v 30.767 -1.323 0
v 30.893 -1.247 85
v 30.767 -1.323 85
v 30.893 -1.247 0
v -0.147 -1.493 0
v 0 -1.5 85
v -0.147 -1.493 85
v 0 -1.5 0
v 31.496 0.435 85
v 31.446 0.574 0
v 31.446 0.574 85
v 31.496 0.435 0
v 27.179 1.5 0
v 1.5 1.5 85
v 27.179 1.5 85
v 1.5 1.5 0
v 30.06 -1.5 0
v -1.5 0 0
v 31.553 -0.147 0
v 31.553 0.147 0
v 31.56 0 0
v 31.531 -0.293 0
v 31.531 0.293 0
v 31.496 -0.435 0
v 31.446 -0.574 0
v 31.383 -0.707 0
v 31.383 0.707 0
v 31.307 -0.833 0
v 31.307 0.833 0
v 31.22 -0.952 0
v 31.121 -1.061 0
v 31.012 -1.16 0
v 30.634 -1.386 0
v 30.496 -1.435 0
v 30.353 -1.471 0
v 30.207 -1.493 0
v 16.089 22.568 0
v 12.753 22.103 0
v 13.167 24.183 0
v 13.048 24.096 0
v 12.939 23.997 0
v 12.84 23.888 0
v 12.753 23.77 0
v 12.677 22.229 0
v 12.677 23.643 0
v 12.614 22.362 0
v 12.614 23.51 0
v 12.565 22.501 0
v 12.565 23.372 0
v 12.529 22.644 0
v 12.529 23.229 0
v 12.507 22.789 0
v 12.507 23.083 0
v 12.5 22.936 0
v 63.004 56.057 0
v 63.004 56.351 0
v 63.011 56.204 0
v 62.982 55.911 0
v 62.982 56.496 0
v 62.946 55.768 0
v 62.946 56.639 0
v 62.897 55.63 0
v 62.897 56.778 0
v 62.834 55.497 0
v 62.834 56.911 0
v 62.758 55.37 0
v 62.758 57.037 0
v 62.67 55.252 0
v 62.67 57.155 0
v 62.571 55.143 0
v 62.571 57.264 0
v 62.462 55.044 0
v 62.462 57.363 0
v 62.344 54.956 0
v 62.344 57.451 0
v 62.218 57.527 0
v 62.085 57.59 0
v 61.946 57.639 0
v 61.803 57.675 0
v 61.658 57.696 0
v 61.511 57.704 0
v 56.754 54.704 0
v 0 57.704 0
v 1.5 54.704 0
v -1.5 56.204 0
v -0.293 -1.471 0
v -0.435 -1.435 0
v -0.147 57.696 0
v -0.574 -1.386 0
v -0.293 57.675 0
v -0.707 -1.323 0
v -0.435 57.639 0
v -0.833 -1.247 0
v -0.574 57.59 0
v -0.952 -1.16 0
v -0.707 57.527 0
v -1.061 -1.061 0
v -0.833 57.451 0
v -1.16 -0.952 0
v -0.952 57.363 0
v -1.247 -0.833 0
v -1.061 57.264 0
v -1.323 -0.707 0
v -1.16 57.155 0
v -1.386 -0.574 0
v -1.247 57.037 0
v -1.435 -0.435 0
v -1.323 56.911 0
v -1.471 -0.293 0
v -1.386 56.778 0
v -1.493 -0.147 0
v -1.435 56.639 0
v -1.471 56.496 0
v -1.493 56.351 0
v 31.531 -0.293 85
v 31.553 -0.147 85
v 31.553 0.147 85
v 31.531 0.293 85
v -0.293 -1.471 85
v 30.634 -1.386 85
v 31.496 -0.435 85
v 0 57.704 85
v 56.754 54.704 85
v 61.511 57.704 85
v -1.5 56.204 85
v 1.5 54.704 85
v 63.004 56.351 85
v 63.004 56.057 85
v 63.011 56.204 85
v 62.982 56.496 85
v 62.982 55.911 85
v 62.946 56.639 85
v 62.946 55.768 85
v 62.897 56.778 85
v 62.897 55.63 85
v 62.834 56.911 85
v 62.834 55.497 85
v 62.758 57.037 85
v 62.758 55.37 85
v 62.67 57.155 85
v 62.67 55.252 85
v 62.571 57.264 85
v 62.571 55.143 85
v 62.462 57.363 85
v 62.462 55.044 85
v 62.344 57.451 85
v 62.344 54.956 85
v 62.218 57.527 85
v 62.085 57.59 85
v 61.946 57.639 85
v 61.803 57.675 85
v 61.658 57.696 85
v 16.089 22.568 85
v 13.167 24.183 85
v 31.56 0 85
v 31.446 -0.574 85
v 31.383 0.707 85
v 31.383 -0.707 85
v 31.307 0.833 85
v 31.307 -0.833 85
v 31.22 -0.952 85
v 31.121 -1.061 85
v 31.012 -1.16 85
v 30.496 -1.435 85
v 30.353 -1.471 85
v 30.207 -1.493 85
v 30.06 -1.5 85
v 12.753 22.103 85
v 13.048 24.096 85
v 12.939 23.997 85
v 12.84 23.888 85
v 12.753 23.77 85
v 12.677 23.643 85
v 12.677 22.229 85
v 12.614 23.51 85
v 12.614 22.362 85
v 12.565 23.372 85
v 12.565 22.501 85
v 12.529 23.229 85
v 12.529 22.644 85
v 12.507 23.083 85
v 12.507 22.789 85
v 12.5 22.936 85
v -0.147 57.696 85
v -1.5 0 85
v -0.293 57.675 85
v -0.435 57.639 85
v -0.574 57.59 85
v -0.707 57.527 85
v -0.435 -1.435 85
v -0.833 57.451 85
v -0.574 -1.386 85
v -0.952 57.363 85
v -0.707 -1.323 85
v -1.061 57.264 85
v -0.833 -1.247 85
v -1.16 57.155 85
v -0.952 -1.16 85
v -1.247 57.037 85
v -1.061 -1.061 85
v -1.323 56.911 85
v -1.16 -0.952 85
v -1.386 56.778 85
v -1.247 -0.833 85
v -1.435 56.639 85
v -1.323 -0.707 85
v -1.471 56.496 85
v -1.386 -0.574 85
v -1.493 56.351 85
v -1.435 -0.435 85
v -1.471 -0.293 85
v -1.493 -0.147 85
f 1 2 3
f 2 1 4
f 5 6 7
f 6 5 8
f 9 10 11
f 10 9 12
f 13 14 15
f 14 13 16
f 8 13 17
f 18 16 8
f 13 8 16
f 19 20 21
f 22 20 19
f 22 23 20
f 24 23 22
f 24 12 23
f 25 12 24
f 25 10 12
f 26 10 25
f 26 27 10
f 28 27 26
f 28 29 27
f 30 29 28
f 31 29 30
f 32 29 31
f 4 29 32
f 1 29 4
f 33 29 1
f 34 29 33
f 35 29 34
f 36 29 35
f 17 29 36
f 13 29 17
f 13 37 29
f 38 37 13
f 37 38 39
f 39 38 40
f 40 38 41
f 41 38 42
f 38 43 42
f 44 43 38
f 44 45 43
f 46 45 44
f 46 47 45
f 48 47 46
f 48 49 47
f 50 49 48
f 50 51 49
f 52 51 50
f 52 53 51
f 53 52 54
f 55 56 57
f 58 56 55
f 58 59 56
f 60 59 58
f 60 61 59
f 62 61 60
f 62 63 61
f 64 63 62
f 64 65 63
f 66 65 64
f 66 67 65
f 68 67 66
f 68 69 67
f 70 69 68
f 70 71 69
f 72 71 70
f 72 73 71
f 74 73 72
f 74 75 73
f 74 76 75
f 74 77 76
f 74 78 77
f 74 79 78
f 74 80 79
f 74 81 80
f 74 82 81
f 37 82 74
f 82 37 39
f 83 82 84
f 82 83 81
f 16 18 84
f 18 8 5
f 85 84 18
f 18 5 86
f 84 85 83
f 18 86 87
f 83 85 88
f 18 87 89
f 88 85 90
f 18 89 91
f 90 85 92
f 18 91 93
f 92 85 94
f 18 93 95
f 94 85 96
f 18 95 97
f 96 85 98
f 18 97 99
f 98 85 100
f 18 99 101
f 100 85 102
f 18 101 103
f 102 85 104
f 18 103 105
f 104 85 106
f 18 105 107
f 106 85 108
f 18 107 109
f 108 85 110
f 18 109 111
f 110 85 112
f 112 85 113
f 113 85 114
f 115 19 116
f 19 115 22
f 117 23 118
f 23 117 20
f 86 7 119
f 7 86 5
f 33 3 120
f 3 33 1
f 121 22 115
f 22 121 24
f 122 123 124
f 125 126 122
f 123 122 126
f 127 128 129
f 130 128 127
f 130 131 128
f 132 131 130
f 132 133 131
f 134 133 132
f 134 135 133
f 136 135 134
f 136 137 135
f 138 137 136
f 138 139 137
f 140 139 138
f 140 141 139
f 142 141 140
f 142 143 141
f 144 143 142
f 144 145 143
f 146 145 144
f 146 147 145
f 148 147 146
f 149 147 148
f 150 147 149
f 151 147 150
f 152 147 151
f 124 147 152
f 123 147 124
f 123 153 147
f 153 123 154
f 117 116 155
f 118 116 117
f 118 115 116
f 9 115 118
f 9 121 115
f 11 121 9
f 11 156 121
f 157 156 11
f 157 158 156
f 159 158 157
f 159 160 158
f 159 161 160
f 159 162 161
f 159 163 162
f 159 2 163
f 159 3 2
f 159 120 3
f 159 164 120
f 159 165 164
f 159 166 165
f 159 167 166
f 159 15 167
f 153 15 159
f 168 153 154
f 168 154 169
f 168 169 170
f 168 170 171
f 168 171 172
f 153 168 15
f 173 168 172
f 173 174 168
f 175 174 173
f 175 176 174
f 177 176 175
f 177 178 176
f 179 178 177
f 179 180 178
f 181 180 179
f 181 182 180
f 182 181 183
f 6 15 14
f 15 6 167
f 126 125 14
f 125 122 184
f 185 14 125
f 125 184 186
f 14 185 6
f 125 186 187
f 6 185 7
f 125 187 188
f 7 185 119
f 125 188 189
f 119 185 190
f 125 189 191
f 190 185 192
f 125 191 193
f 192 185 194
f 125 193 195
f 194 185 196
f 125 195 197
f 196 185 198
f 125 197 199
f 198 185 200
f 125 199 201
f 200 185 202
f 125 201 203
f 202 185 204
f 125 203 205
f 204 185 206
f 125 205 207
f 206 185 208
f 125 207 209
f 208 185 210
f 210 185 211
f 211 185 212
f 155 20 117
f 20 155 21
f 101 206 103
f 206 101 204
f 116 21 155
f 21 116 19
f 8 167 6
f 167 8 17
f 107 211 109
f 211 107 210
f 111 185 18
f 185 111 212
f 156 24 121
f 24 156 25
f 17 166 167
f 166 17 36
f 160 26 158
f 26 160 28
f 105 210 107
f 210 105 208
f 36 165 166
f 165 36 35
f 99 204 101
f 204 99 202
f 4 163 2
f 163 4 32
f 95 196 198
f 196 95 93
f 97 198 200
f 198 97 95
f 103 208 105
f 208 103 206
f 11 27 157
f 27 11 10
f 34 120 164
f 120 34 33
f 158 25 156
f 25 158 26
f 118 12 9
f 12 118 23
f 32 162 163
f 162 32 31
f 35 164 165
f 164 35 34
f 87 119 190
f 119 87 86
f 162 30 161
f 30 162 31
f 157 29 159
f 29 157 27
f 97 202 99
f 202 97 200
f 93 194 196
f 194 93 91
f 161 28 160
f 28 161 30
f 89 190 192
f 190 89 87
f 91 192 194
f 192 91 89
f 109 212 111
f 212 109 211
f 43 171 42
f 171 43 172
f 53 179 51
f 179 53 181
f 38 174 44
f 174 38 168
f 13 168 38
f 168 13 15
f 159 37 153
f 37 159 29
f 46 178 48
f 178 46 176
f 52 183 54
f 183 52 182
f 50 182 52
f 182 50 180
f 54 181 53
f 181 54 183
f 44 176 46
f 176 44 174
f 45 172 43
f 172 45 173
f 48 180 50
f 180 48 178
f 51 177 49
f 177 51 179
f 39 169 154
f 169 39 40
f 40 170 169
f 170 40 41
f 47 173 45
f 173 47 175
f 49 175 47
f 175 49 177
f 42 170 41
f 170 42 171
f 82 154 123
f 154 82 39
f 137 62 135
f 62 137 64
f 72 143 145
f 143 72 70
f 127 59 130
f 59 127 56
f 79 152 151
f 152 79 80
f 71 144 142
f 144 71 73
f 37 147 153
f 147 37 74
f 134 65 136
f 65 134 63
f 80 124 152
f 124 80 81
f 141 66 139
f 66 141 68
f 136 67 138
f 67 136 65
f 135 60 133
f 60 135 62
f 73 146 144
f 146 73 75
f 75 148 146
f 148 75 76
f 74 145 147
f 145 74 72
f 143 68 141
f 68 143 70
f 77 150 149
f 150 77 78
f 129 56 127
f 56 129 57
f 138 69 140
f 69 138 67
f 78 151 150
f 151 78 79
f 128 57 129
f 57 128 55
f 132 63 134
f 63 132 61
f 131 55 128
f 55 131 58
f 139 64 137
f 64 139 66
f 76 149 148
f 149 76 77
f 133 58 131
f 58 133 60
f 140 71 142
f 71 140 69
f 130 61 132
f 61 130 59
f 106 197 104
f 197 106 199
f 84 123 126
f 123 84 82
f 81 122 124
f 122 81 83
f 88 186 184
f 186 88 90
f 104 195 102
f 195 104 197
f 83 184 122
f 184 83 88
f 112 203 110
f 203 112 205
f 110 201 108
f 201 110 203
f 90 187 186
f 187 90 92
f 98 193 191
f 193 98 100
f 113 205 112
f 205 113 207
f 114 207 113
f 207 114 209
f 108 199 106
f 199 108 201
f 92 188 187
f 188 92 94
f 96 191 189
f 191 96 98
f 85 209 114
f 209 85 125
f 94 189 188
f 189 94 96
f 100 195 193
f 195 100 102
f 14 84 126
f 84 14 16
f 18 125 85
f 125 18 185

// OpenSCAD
// Shelf width
shelf_width = 85; // [3:100]

// Shelf back height
shelf_back_height = 58; // [30:80]

// Depth of shelf
shelf_depth = 28; // [10:30]

// Angle of shelf
shelf_angle = 55; // [30:75]

// Shelf padding from bottom
shelf_padding_height = 14; // [0:20]

// Thickness of surfaces
thickness = 3; // [3:6]

// Height of the front
front_height = shelf_padding_height + shelf_depth * cos(shelf_angle);

// Depth of the corner of the shelf
shelf_corner_depth = shelf_depth * sin(shelf_angle);

// Depth of holder to support the back height
holder_depth = shelf_corner_depth + shelf_back_height * cos(shelf_angle);

// Height of the back
back_height = shelf_padding_height + (holder_depth - shelf_corner_depth) * tan(shelf_angle);

// Corner points
point_top_front = [front_height, 0, 0];
point_shelf_bottom = [shelf_padding_height, shelf_corner_depth, 0];
point_shelf_top = [back_height, holder_depth, 0];
point_bottom_back = [0, holder_depth, 0];

// Rounding of edges
$fn = $preview ? 16 : 64;

union() {
  for (i = [[[0, 0, 0],          point_top_front],
            [point_top_front,    point_shelf_bottom],
            [point_shelf_bottom, point_shelf_top],
            [point_shelf_top,    point_bottom_back],
            [point_bottom_back,  [0, 0, 0]]]) {
    hull() {
      translate(i[0]) cylinder(d=thickness, h=shelf_width);
      translate(i[1]) cylinder(d=thickness, h=shelf_width);
    }
  }
}
